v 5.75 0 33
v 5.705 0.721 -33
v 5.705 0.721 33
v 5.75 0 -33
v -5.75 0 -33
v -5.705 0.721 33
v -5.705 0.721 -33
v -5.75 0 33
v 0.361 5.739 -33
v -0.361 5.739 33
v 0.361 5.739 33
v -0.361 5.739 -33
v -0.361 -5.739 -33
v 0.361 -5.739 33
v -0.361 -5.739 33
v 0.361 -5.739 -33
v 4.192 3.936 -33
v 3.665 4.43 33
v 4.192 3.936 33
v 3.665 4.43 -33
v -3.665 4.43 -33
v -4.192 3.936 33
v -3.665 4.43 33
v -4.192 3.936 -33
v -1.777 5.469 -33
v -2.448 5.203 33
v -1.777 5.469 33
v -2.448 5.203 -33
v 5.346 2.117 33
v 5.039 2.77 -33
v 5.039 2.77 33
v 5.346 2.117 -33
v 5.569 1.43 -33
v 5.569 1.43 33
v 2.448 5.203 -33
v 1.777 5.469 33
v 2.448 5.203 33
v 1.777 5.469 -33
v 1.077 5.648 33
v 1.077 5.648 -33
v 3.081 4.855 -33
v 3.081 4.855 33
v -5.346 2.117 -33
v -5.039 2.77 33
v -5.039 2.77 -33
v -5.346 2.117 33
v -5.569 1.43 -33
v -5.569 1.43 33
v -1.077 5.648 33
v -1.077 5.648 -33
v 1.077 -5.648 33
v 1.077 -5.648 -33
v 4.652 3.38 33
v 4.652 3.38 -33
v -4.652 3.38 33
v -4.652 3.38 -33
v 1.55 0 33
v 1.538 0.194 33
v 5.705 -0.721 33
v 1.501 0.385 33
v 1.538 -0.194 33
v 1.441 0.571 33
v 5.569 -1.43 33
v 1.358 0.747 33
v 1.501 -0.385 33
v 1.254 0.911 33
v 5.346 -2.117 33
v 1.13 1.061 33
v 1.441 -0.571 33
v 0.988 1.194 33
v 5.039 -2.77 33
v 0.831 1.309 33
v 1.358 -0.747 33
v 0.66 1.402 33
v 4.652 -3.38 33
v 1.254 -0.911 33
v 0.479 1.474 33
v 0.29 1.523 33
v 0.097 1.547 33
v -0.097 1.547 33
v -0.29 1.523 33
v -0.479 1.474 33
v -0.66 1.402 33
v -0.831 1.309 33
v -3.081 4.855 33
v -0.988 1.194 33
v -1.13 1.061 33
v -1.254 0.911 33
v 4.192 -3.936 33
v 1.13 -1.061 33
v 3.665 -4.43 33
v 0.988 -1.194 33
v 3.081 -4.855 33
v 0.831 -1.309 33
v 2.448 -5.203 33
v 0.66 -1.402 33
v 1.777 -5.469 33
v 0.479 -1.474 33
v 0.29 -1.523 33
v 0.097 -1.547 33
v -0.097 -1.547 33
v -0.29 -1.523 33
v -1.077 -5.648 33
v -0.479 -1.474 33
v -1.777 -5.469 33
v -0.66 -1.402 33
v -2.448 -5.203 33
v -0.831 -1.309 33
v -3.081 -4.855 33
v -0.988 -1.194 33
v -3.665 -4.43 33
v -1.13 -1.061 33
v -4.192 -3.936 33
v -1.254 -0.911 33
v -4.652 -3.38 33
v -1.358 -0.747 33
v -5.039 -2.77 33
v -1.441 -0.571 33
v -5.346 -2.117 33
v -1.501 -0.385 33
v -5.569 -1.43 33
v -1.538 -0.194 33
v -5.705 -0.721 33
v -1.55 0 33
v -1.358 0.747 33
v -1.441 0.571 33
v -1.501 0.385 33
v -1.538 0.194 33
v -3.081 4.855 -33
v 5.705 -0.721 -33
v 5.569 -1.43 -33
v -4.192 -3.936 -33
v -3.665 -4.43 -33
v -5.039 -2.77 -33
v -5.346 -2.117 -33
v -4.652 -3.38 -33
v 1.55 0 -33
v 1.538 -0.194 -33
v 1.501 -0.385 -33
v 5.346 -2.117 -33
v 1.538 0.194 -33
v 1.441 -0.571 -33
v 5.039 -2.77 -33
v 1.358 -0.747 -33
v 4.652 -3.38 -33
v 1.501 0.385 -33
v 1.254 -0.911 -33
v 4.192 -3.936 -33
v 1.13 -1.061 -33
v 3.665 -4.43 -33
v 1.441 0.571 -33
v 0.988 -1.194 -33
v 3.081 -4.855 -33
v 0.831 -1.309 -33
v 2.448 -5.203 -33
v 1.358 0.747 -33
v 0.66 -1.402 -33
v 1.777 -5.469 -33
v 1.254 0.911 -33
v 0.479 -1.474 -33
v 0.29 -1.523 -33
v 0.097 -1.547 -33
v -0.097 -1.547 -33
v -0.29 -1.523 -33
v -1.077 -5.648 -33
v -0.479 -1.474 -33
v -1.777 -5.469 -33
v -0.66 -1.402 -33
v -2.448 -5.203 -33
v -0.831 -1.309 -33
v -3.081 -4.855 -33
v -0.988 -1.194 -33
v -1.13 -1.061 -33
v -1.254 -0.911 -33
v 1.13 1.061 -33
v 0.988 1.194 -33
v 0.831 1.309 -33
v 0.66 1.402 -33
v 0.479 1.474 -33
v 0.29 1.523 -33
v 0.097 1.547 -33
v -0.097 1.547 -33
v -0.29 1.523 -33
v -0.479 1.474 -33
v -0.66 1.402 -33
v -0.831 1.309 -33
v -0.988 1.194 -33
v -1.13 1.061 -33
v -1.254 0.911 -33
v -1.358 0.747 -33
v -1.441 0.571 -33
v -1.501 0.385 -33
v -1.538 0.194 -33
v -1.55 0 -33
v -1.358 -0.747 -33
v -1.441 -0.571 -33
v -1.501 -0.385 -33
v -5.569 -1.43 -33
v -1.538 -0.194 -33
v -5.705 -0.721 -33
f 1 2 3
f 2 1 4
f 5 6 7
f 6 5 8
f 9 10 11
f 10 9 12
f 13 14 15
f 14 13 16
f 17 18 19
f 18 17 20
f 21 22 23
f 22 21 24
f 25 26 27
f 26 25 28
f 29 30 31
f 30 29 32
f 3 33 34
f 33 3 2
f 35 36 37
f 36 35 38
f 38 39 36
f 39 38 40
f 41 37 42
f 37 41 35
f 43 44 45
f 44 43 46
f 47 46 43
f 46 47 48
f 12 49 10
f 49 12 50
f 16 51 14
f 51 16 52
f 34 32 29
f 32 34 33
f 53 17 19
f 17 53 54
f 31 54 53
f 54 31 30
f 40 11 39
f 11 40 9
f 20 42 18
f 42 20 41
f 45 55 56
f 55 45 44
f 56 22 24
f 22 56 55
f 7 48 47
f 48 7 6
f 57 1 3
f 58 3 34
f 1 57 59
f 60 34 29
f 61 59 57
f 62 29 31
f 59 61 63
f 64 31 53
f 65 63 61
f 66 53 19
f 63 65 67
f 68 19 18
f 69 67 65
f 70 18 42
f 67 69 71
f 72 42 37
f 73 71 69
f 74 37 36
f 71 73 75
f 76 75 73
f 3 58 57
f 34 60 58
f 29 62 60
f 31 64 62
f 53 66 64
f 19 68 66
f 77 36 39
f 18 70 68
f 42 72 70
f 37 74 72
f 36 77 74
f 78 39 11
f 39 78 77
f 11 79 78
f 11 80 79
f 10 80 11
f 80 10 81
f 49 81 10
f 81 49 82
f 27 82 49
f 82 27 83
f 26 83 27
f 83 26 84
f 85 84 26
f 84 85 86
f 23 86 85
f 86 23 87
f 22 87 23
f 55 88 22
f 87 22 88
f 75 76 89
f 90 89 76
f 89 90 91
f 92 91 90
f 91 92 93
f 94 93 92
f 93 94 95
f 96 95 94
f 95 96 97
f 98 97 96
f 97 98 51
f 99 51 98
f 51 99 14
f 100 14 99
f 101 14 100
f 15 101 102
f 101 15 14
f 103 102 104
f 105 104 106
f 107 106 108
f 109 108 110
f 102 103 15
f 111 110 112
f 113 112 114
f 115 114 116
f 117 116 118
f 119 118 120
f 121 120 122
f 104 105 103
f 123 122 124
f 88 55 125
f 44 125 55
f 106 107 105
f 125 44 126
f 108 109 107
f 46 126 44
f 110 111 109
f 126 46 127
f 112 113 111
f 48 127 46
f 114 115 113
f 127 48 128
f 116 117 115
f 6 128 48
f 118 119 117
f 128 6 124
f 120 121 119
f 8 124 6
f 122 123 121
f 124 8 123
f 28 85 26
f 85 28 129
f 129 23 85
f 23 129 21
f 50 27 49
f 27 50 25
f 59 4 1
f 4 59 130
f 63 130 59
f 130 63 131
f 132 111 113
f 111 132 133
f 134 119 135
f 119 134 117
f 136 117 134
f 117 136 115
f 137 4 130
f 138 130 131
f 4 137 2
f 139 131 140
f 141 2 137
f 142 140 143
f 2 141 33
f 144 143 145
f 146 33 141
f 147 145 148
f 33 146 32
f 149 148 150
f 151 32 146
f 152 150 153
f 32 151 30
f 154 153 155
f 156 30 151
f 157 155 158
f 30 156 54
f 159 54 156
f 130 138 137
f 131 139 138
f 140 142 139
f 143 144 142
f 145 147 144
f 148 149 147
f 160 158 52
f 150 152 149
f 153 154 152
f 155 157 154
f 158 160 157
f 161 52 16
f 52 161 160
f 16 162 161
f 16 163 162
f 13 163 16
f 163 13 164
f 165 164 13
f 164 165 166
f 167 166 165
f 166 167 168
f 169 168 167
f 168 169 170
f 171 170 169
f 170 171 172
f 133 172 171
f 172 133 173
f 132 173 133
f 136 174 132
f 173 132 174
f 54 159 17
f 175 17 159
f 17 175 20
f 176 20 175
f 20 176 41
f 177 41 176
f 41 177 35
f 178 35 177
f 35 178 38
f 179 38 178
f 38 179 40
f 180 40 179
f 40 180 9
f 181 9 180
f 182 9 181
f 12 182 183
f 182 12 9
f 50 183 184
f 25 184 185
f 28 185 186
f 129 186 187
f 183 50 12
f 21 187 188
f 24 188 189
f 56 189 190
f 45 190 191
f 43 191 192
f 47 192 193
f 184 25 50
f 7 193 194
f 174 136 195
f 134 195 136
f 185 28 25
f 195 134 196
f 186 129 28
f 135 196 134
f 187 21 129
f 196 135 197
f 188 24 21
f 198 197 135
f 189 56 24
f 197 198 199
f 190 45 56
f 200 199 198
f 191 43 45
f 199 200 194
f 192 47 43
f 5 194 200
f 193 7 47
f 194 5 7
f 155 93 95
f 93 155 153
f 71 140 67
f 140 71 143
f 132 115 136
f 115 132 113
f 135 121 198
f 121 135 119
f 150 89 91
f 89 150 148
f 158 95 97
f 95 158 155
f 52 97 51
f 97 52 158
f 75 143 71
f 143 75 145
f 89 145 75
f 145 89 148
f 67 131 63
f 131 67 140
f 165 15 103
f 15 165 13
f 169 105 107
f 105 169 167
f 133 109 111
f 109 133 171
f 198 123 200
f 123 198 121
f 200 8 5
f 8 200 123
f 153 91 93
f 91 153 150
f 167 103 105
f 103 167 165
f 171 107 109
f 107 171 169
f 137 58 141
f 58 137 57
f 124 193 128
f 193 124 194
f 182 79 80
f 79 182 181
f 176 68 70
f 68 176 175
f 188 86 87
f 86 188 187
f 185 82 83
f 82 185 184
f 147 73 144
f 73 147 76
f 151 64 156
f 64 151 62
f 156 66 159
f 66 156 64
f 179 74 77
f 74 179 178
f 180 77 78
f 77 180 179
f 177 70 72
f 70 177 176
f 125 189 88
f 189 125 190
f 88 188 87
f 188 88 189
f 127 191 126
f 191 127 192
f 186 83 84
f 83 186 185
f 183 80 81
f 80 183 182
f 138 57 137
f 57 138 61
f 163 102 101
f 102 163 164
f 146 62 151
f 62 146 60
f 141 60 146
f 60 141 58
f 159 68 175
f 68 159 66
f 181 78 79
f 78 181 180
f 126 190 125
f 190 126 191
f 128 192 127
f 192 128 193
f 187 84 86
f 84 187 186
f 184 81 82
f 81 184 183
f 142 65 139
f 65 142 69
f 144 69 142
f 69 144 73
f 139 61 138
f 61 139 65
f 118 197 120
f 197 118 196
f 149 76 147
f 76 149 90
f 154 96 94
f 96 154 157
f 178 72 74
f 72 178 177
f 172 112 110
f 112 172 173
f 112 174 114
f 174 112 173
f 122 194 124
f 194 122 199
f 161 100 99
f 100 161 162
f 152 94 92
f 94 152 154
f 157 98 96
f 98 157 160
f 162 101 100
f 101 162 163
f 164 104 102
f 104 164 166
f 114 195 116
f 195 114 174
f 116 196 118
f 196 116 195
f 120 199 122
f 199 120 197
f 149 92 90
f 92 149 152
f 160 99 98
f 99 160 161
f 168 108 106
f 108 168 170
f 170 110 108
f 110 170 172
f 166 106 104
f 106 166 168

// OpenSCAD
$fn = 50;


difference() {
	union() {
		translate(v = [0, 0, -33.0000000000]) {
			cylinder(h = 66, r = 5.7500000000);
		}
	}
	union() {
		translate(v = [0, 0, -100.0000000000]) {
			cylinder(h = 200, r = 1.5500000000);
		}
	}
}
